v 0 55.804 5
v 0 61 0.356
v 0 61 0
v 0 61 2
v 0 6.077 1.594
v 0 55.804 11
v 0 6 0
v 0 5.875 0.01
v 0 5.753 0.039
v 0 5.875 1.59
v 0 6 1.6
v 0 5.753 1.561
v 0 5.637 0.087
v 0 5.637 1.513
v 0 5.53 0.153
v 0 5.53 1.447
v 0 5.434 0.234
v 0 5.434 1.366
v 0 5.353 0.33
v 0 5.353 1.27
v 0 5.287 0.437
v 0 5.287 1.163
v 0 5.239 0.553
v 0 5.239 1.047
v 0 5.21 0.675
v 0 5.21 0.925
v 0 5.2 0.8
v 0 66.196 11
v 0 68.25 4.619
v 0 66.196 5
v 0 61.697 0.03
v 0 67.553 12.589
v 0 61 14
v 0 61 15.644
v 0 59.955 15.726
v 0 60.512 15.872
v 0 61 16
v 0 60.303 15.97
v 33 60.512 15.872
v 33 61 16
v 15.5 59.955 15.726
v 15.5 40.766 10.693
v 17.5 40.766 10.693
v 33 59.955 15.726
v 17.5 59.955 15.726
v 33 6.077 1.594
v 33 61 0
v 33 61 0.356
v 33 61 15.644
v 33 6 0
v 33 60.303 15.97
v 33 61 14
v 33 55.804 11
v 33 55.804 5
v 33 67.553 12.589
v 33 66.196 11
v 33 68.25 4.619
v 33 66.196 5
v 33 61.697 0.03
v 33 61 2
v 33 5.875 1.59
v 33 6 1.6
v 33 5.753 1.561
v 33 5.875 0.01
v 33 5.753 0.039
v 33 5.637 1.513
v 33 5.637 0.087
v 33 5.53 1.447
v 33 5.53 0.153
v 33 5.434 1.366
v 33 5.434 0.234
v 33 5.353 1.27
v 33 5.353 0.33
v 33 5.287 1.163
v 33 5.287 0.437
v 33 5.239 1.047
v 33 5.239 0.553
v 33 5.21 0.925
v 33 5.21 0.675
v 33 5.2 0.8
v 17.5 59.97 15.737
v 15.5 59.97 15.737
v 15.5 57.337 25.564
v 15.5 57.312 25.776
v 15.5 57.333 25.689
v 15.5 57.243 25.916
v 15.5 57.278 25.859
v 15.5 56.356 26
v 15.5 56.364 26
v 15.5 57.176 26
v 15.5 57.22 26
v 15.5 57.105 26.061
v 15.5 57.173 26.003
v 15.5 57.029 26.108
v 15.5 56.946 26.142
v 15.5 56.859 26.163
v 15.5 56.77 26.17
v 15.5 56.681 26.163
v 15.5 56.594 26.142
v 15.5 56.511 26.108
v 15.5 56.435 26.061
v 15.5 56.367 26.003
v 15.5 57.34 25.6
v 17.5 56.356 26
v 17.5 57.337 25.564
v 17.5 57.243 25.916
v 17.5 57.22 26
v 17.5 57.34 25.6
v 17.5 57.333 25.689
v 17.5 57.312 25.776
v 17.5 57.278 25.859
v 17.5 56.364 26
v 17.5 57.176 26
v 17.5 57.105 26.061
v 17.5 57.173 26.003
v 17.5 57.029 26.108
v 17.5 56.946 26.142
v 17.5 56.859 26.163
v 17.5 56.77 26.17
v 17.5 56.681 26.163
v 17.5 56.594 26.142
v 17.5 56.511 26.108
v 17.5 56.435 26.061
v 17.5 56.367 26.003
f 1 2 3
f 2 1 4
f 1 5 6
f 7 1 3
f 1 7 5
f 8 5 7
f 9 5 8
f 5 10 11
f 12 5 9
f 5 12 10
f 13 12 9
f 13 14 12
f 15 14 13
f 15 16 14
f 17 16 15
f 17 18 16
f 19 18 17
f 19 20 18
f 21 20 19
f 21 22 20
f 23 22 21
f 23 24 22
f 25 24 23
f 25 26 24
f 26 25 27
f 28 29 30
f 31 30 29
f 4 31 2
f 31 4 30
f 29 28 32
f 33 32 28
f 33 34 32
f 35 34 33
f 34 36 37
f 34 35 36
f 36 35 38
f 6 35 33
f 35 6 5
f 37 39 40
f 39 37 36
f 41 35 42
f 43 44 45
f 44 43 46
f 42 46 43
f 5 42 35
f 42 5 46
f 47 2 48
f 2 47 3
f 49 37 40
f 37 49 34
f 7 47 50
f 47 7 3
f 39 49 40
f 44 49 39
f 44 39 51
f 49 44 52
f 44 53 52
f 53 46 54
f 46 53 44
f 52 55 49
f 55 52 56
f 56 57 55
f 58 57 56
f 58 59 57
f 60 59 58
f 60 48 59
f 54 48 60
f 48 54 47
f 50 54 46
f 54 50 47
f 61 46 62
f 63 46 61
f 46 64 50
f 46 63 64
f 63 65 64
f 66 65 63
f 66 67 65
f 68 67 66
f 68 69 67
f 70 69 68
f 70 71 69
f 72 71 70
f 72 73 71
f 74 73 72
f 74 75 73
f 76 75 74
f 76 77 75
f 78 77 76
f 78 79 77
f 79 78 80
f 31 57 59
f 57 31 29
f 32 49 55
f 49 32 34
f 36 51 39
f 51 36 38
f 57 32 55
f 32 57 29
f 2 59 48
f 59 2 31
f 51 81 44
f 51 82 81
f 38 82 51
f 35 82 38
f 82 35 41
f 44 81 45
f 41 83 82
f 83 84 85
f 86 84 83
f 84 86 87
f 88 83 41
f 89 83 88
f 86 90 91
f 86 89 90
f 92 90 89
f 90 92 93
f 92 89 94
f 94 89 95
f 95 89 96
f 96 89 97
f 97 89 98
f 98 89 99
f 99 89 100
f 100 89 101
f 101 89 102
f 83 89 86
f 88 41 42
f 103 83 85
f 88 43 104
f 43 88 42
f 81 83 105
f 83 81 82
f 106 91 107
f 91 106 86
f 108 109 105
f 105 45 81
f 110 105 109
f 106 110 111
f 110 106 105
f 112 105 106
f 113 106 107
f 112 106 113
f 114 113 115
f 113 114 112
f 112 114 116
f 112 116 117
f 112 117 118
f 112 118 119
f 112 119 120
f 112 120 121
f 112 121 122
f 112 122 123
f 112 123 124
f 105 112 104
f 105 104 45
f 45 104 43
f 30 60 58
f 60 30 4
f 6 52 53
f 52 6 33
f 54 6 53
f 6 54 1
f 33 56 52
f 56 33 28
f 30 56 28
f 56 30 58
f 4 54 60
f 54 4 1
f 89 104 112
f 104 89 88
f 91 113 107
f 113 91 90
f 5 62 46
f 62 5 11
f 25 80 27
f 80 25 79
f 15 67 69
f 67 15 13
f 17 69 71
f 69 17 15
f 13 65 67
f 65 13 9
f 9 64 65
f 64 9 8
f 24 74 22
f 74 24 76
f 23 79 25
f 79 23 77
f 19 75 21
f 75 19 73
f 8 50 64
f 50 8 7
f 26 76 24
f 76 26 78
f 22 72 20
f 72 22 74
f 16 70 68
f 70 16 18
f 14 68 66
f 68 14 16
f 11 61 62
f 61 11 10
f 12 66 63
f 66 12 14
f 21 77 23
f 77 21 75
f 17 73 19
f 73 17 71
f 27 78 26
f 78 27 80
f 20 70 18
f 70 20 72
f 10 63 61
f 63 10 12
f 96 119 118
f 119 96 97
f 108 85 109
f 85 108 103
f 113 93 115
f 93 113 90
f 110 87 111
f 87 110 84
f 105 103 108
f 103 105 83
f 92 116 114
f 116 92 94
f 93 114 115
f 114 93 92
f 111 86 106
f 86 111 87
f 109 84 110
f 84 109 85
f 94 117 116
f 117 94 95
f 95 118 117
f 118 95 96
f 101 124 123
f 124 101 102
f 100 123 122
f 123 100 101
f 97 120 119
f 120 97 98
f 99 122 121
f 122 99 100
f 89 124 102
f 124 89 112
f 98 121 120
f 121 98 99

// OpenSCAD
module prism(l, w, h){
       polyhedron(
               points=[[0,0,0], [l,0,0], [l,w,0], [0,w,0], [0,w,h], [l,w,h]],
               faces=[[0,1,2,3],[5,4,3,2],[0,4,5,1],[0,3,4],[5,2,1]]
               );
}

difference() {
    union() {   
        prism(33, 61, 16);
        //translate([0,61,8]) rotate([0,90,0]) cylinder(33,16/2,16/2, $fn=6);
        translate([-8,0,8]) rotate([0,90,0]) translate([0,61,8]) rotate(5) cylinder(33,16/2,16/2, $fn=6);
        rotate([15,0,0]) translate([15.5,39,-2]) prism(2,23,13);
    }
    translate([0,61,8]) rotate([0,90,0]) cylinder(33,12/2,12/2, $fn=6);
    cube([33,6,6]);
    translate([0,54,26]) cube([33,5,5]);
}
translate([0,6,0.8]) rotate([0,90,0]) cylinder(33,1.6/2,1.6/2, $fn=40);
translate([15.5,56.77,25.6]) rotate([0,90,0]) cylinder(2,1.14/2,1.14/2, $fn=40);
